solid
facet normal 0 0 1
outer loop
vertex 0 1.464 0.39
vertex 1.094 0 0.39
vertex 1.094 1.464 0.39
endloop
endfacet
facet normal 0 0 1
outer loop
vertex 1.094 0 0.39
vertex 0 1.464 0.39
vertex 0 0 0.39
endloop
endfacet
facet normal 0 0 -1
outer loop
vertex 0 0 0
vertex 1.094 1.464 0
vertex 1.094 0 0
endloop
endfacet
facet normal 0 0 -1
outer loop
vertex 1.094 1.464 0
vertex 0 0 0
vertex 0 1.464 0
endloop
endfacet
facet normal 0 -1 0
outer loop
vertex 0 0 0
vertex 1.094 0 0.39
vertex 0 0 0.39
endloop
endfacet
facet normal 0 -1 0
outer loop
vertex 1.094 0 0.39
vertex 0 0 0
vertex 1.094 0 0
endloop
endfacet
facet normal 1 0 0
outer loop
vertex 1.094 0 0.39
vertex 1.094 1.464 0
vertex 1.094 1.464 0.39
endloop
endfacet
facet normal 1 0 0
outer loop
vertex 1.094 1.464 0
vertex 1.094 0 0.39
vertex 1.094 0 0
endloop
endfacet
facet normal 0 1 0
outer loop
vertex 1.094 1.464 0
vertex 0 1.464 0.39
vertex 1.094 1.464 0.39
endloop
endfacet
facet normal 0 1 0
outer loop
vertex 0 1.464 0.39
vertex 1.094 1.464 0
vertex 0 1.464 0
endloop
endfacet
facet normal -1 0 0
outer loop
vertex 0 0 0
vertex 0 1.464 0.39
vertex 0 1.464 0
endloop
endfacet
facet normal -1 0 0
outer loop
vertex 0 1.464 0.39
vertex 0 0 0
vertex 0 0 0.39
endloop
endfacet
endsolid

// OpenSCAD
/* Warning, this is a very basic generator with a lot of approximation 
input data : [WLCSP, GXB, 1.094x1.464x0.39mm, 4, , A, C04-21495A]
generated by com.zoubworld.electronics.cad.model3d.Basic
Date : Sun Feb 15 10:50:49 CET 2026
*/

//body
color("black")
translate([0,0,0])
cube([1.094,1.464,0.39], center=false);
